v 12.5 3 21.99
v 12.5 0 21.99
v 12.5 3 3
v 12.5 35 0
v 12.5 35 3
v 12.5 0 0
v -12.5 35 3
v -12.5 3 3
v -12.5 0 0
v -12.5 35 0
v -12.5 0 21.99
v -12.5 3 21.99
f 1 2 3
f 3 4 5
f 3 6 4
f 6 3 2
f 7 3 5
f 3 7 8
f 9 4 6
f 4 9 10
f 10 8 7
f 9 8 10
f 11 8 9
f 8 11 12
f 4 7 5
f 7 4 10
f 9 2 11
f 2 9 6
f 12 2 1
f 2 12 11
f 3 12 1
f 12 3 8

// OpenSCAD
// -*- mode: SCAD ; c-file-style: "ellemtel" ; coding: utf-8 -*-
//
// Hook for the line of IKEA window blinds.
//
// © 2017–2024  Roland Sieker <ospalh@gmail.com>
// Licence: CC-BY-SA 4.0

b_width = 25;
arm_length = 35;
arm_hight = 3;
gap_hight = 19;
ms=0.01;
translate([-b_width/2, 0, 0])
{
   // Base
   cube([b_width, arm_length, arm_hight]);
   translate ([0, 0, arm_hight -ms])
   cube([b_width, arm_hight, gap_hight]);
}
